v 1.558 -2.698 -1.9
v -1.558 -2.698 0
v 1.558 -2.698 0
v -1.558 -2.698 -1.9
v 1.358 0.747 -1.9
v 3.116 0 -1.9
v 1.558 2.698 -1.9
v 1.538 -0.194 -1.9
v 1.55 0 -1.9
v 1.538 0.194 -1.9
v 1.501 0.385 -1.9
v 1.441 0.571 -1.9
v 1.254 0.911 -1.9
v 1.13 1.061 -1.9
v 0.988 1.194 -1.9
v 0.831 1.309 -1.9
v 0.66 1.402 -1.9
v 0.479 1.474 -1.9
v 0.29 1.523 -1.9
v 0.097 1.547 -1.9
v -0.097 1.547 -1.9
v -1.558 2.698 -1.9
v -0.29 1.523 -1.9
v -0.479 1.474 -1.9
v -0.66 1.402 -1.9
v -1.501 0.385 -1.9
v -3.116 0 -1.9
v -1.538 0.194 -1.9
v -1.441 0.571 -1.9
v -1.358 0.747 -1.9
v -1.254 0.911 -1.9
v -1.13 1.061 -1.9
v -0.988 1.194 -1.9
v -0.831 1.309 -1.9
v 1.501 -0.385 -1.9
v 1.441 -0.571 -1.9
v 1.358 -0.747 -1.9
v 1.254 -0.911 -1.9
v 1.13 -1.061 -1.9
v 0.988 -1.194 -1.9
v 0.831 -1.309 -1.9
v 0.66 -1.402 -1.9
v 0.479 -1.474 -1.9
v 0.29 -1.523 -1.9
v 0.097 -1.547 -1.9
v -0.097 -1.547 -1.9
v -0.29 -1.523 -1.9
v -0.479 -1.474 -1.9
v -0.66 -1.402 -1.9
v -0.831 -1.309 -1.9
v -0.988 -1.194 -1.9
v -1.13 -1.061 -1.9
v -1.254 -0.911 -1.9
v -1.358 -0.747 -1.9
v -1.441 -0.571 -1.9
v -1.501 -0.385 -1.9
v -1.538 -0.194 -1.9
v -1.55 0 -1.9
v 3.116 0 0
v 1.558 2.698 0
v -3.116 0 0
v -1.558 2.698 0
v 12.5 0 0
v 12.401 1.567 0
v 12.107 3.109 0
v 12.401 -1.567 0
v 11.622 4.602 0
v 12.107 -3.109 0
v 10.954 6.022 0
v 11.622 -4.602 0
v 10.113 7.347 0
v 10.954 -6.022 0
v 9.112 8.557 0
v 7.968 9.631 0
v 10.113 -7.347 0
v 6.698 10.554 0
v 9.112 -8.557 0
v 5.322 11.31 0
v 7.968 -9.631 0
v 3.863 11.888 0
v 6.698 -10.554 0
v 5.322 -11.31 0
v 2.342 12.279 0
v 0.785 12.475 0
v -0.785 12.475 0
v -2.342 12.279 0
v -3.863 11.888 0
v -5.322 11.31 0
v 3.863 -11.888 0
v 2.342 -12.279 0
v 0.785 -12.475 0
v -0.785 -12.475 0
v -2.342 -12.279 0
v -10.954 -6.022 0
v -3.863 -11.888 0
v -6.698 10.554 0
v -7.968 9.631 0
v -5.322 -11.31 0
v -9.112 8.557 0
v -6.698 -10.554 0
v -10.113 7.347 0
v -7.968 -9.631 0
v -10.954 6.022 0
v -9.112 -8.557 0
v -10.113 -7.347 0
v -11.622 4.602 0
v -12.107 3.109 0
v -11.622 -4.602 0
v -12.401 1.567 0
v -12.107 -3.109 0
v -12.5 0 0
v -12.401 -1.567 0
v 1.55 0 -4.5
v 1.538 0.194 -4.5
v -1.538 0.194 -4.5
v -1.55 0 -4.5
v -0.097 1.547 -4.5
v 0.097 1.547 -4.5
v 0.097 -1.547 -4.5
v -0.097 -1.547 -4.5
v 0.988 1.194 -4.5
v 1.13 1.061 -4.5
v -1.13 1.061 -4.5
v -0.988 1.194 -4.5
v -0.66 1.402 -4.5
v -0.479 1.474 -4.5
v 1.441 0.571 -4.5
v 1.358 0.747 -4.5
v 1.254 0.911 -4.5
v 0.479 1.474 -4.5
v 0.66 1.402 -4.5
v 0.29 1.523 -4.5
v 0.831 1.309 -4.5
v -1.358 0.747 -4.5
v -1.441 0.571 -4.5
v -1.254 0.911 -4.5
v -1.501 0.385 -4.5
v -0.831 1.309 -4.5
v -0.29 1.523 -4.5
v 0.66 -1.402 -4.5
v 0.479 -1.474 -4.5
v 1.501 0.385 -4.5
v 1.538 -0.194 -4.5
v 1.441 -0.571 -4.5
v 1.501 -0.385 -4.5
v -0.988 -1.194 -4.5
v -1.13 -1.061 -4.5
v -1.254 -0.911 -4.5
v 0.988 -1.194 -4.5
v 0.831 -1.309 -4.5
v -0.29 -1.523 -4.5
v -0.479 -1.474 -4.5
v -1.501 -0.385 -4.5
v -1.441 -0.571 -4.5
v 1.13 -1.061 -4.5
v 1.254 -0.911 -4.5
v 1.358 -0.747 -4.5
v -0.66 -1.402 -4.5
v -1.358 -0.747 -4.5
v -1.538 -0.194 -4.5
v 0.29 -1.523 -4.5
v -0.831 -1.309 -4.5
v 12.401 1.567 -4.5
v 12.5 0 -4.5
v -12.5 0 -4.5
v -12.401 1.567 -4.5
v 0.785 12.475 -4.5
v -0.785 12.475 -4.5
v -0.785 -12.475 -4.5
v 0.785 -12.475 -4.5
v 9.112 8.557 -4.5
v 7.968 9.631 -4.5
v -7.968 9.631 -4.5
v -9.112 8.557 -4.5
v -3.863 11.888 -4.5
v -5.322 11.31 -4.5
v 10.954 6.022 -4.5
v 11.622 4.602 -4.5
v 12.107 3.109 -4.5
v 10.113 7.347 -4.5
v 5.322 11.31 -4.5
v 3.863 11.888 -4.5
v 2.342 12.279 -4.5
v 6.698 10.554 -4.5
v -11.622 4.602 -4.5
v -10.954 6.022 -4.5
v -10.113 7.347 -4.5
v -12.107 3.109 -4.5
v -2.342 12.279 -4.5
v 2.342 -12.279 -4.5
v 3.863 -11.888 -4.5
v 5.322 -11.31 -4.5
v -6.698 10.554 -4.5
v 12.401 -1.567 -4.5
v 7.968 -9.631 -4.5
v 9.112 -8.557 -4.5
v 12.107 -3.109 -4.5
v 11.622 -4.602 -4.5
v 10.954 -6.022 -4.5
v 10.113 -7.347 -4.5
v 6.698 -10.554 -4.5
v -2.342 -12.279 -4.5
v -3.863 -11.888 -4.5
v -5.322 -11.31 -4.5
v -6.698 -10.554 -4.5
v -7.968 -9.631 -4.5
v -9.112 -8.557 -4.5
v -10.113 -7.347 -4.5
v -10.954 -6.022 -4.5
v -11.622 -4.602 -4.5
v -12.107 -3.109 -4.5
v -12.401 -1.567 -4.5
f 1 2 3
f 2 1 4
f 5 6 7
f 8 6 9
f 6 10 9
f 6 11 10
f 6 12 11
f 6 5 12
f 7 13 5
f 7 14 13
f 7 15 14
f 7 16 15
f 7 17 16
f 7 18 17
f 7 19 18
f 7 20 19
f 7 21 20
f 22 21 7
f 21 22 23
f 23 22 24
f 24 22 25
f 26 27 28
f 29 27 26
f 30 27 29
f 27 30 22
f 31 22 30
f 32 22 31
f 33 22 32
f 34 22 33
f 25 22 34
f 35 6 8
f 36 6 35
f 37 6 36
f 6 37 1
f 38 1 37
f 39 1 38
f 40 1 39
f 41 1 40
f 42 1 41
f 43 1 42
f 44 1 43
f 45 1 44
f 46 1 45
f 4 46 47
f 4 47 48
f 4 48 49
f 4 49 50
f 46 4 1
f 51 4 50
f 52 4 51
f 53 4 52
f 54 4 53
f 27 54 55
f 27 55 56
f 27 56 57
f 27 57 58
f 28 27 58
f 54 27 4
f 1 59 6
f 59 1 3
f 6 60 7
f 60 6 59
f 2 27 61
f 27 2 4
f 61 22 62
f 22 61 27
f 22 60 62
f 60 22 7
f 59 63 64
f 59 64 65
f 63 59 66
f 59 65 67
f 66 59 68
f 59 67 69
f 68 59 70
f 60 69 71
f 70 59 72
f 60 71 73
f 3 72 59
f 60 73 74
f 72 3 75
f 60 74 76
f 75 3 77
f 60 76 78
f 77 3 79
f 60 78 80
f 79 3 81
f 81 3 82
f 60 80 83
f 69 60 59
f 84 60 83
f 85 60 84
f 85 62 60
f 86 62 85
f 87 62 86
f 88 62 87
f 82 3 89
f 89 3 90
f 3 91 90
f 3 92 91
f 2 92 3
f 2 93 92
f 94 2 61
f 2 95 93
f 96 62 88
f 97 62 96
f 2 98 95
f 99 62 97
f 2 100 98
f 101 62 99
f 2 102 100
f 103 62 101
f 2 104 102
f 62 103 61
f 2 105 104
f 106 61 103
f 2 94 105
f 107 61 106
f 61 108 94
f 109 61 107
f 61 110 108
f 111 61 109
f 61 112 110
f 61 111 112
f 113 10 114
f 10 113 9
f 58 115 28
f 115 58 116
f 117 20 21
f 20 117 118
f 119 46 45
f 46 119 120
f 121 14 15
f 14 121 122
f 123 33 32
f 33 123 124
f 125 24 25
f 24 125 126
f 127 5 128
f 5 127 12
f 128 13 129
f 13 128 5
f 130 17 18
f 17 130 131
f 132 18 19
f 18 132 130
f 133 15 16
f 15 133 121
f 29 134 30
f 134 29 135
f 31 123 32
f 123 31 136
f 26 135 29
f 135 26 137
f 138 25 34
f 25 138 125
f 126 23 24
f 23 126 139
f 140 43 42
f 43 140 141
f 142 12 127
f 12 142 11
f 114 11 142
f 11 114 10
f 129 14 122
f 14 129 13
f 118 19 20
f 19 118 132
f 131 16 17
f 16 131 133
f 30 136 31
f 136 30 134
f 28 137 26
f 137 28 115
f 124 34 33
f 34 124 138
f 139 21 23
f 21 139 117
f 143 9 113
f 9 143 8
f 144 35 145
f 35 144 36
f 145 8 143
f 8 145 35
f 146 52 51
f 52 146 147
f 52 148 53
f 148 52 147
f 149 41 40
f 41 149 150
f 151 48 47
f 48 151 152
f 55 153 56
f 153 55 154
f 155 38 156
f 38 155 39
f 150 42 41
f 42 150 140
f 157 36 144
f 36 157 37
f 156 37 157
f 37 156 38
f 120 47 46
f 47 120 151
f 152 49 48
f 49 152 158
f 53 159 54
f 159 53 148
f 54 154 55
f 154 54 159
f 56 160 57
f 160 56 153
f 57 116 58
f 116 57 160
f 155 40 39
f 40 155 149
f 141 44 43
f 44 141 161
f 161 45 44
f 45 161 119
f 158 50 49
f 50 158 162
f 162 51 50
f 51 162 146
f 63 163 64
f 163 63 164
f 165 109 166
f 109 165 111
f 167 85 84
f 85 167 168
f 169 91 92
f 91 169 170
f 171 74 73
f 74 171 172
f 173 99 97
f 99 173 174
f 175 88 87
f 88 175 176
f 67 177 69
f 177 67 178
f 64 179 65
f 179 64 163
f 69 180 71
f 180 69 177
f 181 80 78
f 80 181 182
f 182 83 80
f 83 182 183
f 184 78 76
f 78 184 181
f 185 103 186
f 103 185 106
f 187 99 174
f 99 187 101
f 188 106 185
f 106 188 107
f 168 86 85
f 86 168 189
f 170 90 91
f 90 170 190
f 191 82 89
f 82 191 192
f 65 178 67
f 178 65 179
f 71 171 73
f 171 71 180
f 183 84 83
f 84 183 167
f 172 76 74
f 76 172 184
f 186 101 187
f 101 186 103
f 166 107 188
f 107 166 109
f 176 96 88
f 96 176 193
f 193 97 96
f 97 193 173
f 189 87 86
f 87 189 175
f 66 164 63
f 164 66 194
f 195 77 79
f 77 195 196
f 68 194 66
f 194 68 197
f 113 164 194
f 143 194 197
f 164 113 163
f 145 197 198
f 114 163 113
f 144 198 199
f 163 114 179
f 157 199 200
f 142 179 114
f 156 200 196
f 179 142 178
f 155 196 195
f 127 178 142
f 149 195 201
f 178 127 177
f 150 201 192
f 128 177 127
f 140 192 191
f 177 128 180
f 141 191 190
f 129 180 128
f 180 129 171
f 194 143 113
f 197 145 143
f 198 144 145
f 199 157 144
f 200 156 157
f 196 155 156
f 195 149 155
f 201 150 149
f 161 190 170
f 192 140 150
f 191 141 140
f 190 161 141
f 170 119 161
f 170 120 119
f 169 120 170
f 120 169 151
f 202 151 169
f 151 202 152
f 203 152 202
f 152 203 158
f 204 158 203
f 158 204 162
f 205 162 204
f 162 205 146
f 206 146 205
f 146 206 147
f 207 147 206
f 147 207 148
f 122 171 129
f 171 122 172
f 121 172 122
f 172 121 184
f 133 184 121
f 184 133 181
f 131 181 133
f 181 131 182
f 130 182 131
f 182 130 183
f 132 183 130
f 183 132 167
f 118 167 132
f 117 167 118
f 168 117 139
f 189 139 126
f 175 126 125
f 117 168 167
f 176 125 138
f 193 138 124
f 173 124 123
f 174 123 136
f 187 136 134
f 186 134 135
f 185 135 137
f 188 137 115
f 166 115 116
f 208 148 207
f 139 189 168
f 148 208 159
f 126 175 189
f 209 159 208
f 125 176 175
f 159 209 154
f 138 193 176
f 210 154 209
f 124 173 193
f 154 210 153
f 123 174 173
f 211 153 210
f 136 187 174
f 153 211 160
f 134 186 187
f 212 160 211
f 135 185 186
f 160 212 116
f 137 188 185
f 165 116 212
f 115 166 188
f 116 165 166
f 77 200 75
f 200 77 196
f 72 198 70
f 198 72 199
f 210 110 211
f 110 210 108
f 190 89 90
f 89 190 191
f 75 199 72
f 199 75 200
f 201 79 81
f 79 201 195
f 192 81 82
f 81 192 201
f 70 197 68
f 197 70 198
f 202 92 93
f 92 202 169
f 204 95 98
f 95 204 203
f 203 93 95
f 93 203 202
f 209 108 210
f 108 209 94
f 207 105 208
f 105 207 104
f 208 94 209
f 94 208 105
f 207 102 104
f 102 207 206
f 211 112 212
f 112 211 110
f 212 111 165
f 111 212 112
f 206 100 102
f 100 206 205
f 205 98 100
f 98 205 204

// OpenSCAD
$fn = 50;


difference() {
	union() {
		translate(v = [0, 0, -4.5000000000]) {
			cylinder(h = 4.5000000000, r = 12.5000000000);
		}
	}
	union() {
		translate(v = [0, 0, 0]) {
			rotate(a = [0, 0, 0]) {
				difference() {
					union() {
						translate(v = [0, 0, -1.9000000000]) {
							linear_extrude(height = 1.9000000000) {
								polygon(points = [[3.1158000000, 0.0000000000], [1.5579000000, 2.6983619531], [-1.5579000000, 2.6983619531], [-3.1158000000, 0.0000000000], [-1.5579000000, -2.6983619531], [1.5579000000, -2.6983619531]]);
							}
						}
					}
					union();
				}
			}
		}
		#translate(v = [0, 0, -100.0000000000]) {
			cylinder(h = 200, r = 1.5500000000);
		}
	}
}
